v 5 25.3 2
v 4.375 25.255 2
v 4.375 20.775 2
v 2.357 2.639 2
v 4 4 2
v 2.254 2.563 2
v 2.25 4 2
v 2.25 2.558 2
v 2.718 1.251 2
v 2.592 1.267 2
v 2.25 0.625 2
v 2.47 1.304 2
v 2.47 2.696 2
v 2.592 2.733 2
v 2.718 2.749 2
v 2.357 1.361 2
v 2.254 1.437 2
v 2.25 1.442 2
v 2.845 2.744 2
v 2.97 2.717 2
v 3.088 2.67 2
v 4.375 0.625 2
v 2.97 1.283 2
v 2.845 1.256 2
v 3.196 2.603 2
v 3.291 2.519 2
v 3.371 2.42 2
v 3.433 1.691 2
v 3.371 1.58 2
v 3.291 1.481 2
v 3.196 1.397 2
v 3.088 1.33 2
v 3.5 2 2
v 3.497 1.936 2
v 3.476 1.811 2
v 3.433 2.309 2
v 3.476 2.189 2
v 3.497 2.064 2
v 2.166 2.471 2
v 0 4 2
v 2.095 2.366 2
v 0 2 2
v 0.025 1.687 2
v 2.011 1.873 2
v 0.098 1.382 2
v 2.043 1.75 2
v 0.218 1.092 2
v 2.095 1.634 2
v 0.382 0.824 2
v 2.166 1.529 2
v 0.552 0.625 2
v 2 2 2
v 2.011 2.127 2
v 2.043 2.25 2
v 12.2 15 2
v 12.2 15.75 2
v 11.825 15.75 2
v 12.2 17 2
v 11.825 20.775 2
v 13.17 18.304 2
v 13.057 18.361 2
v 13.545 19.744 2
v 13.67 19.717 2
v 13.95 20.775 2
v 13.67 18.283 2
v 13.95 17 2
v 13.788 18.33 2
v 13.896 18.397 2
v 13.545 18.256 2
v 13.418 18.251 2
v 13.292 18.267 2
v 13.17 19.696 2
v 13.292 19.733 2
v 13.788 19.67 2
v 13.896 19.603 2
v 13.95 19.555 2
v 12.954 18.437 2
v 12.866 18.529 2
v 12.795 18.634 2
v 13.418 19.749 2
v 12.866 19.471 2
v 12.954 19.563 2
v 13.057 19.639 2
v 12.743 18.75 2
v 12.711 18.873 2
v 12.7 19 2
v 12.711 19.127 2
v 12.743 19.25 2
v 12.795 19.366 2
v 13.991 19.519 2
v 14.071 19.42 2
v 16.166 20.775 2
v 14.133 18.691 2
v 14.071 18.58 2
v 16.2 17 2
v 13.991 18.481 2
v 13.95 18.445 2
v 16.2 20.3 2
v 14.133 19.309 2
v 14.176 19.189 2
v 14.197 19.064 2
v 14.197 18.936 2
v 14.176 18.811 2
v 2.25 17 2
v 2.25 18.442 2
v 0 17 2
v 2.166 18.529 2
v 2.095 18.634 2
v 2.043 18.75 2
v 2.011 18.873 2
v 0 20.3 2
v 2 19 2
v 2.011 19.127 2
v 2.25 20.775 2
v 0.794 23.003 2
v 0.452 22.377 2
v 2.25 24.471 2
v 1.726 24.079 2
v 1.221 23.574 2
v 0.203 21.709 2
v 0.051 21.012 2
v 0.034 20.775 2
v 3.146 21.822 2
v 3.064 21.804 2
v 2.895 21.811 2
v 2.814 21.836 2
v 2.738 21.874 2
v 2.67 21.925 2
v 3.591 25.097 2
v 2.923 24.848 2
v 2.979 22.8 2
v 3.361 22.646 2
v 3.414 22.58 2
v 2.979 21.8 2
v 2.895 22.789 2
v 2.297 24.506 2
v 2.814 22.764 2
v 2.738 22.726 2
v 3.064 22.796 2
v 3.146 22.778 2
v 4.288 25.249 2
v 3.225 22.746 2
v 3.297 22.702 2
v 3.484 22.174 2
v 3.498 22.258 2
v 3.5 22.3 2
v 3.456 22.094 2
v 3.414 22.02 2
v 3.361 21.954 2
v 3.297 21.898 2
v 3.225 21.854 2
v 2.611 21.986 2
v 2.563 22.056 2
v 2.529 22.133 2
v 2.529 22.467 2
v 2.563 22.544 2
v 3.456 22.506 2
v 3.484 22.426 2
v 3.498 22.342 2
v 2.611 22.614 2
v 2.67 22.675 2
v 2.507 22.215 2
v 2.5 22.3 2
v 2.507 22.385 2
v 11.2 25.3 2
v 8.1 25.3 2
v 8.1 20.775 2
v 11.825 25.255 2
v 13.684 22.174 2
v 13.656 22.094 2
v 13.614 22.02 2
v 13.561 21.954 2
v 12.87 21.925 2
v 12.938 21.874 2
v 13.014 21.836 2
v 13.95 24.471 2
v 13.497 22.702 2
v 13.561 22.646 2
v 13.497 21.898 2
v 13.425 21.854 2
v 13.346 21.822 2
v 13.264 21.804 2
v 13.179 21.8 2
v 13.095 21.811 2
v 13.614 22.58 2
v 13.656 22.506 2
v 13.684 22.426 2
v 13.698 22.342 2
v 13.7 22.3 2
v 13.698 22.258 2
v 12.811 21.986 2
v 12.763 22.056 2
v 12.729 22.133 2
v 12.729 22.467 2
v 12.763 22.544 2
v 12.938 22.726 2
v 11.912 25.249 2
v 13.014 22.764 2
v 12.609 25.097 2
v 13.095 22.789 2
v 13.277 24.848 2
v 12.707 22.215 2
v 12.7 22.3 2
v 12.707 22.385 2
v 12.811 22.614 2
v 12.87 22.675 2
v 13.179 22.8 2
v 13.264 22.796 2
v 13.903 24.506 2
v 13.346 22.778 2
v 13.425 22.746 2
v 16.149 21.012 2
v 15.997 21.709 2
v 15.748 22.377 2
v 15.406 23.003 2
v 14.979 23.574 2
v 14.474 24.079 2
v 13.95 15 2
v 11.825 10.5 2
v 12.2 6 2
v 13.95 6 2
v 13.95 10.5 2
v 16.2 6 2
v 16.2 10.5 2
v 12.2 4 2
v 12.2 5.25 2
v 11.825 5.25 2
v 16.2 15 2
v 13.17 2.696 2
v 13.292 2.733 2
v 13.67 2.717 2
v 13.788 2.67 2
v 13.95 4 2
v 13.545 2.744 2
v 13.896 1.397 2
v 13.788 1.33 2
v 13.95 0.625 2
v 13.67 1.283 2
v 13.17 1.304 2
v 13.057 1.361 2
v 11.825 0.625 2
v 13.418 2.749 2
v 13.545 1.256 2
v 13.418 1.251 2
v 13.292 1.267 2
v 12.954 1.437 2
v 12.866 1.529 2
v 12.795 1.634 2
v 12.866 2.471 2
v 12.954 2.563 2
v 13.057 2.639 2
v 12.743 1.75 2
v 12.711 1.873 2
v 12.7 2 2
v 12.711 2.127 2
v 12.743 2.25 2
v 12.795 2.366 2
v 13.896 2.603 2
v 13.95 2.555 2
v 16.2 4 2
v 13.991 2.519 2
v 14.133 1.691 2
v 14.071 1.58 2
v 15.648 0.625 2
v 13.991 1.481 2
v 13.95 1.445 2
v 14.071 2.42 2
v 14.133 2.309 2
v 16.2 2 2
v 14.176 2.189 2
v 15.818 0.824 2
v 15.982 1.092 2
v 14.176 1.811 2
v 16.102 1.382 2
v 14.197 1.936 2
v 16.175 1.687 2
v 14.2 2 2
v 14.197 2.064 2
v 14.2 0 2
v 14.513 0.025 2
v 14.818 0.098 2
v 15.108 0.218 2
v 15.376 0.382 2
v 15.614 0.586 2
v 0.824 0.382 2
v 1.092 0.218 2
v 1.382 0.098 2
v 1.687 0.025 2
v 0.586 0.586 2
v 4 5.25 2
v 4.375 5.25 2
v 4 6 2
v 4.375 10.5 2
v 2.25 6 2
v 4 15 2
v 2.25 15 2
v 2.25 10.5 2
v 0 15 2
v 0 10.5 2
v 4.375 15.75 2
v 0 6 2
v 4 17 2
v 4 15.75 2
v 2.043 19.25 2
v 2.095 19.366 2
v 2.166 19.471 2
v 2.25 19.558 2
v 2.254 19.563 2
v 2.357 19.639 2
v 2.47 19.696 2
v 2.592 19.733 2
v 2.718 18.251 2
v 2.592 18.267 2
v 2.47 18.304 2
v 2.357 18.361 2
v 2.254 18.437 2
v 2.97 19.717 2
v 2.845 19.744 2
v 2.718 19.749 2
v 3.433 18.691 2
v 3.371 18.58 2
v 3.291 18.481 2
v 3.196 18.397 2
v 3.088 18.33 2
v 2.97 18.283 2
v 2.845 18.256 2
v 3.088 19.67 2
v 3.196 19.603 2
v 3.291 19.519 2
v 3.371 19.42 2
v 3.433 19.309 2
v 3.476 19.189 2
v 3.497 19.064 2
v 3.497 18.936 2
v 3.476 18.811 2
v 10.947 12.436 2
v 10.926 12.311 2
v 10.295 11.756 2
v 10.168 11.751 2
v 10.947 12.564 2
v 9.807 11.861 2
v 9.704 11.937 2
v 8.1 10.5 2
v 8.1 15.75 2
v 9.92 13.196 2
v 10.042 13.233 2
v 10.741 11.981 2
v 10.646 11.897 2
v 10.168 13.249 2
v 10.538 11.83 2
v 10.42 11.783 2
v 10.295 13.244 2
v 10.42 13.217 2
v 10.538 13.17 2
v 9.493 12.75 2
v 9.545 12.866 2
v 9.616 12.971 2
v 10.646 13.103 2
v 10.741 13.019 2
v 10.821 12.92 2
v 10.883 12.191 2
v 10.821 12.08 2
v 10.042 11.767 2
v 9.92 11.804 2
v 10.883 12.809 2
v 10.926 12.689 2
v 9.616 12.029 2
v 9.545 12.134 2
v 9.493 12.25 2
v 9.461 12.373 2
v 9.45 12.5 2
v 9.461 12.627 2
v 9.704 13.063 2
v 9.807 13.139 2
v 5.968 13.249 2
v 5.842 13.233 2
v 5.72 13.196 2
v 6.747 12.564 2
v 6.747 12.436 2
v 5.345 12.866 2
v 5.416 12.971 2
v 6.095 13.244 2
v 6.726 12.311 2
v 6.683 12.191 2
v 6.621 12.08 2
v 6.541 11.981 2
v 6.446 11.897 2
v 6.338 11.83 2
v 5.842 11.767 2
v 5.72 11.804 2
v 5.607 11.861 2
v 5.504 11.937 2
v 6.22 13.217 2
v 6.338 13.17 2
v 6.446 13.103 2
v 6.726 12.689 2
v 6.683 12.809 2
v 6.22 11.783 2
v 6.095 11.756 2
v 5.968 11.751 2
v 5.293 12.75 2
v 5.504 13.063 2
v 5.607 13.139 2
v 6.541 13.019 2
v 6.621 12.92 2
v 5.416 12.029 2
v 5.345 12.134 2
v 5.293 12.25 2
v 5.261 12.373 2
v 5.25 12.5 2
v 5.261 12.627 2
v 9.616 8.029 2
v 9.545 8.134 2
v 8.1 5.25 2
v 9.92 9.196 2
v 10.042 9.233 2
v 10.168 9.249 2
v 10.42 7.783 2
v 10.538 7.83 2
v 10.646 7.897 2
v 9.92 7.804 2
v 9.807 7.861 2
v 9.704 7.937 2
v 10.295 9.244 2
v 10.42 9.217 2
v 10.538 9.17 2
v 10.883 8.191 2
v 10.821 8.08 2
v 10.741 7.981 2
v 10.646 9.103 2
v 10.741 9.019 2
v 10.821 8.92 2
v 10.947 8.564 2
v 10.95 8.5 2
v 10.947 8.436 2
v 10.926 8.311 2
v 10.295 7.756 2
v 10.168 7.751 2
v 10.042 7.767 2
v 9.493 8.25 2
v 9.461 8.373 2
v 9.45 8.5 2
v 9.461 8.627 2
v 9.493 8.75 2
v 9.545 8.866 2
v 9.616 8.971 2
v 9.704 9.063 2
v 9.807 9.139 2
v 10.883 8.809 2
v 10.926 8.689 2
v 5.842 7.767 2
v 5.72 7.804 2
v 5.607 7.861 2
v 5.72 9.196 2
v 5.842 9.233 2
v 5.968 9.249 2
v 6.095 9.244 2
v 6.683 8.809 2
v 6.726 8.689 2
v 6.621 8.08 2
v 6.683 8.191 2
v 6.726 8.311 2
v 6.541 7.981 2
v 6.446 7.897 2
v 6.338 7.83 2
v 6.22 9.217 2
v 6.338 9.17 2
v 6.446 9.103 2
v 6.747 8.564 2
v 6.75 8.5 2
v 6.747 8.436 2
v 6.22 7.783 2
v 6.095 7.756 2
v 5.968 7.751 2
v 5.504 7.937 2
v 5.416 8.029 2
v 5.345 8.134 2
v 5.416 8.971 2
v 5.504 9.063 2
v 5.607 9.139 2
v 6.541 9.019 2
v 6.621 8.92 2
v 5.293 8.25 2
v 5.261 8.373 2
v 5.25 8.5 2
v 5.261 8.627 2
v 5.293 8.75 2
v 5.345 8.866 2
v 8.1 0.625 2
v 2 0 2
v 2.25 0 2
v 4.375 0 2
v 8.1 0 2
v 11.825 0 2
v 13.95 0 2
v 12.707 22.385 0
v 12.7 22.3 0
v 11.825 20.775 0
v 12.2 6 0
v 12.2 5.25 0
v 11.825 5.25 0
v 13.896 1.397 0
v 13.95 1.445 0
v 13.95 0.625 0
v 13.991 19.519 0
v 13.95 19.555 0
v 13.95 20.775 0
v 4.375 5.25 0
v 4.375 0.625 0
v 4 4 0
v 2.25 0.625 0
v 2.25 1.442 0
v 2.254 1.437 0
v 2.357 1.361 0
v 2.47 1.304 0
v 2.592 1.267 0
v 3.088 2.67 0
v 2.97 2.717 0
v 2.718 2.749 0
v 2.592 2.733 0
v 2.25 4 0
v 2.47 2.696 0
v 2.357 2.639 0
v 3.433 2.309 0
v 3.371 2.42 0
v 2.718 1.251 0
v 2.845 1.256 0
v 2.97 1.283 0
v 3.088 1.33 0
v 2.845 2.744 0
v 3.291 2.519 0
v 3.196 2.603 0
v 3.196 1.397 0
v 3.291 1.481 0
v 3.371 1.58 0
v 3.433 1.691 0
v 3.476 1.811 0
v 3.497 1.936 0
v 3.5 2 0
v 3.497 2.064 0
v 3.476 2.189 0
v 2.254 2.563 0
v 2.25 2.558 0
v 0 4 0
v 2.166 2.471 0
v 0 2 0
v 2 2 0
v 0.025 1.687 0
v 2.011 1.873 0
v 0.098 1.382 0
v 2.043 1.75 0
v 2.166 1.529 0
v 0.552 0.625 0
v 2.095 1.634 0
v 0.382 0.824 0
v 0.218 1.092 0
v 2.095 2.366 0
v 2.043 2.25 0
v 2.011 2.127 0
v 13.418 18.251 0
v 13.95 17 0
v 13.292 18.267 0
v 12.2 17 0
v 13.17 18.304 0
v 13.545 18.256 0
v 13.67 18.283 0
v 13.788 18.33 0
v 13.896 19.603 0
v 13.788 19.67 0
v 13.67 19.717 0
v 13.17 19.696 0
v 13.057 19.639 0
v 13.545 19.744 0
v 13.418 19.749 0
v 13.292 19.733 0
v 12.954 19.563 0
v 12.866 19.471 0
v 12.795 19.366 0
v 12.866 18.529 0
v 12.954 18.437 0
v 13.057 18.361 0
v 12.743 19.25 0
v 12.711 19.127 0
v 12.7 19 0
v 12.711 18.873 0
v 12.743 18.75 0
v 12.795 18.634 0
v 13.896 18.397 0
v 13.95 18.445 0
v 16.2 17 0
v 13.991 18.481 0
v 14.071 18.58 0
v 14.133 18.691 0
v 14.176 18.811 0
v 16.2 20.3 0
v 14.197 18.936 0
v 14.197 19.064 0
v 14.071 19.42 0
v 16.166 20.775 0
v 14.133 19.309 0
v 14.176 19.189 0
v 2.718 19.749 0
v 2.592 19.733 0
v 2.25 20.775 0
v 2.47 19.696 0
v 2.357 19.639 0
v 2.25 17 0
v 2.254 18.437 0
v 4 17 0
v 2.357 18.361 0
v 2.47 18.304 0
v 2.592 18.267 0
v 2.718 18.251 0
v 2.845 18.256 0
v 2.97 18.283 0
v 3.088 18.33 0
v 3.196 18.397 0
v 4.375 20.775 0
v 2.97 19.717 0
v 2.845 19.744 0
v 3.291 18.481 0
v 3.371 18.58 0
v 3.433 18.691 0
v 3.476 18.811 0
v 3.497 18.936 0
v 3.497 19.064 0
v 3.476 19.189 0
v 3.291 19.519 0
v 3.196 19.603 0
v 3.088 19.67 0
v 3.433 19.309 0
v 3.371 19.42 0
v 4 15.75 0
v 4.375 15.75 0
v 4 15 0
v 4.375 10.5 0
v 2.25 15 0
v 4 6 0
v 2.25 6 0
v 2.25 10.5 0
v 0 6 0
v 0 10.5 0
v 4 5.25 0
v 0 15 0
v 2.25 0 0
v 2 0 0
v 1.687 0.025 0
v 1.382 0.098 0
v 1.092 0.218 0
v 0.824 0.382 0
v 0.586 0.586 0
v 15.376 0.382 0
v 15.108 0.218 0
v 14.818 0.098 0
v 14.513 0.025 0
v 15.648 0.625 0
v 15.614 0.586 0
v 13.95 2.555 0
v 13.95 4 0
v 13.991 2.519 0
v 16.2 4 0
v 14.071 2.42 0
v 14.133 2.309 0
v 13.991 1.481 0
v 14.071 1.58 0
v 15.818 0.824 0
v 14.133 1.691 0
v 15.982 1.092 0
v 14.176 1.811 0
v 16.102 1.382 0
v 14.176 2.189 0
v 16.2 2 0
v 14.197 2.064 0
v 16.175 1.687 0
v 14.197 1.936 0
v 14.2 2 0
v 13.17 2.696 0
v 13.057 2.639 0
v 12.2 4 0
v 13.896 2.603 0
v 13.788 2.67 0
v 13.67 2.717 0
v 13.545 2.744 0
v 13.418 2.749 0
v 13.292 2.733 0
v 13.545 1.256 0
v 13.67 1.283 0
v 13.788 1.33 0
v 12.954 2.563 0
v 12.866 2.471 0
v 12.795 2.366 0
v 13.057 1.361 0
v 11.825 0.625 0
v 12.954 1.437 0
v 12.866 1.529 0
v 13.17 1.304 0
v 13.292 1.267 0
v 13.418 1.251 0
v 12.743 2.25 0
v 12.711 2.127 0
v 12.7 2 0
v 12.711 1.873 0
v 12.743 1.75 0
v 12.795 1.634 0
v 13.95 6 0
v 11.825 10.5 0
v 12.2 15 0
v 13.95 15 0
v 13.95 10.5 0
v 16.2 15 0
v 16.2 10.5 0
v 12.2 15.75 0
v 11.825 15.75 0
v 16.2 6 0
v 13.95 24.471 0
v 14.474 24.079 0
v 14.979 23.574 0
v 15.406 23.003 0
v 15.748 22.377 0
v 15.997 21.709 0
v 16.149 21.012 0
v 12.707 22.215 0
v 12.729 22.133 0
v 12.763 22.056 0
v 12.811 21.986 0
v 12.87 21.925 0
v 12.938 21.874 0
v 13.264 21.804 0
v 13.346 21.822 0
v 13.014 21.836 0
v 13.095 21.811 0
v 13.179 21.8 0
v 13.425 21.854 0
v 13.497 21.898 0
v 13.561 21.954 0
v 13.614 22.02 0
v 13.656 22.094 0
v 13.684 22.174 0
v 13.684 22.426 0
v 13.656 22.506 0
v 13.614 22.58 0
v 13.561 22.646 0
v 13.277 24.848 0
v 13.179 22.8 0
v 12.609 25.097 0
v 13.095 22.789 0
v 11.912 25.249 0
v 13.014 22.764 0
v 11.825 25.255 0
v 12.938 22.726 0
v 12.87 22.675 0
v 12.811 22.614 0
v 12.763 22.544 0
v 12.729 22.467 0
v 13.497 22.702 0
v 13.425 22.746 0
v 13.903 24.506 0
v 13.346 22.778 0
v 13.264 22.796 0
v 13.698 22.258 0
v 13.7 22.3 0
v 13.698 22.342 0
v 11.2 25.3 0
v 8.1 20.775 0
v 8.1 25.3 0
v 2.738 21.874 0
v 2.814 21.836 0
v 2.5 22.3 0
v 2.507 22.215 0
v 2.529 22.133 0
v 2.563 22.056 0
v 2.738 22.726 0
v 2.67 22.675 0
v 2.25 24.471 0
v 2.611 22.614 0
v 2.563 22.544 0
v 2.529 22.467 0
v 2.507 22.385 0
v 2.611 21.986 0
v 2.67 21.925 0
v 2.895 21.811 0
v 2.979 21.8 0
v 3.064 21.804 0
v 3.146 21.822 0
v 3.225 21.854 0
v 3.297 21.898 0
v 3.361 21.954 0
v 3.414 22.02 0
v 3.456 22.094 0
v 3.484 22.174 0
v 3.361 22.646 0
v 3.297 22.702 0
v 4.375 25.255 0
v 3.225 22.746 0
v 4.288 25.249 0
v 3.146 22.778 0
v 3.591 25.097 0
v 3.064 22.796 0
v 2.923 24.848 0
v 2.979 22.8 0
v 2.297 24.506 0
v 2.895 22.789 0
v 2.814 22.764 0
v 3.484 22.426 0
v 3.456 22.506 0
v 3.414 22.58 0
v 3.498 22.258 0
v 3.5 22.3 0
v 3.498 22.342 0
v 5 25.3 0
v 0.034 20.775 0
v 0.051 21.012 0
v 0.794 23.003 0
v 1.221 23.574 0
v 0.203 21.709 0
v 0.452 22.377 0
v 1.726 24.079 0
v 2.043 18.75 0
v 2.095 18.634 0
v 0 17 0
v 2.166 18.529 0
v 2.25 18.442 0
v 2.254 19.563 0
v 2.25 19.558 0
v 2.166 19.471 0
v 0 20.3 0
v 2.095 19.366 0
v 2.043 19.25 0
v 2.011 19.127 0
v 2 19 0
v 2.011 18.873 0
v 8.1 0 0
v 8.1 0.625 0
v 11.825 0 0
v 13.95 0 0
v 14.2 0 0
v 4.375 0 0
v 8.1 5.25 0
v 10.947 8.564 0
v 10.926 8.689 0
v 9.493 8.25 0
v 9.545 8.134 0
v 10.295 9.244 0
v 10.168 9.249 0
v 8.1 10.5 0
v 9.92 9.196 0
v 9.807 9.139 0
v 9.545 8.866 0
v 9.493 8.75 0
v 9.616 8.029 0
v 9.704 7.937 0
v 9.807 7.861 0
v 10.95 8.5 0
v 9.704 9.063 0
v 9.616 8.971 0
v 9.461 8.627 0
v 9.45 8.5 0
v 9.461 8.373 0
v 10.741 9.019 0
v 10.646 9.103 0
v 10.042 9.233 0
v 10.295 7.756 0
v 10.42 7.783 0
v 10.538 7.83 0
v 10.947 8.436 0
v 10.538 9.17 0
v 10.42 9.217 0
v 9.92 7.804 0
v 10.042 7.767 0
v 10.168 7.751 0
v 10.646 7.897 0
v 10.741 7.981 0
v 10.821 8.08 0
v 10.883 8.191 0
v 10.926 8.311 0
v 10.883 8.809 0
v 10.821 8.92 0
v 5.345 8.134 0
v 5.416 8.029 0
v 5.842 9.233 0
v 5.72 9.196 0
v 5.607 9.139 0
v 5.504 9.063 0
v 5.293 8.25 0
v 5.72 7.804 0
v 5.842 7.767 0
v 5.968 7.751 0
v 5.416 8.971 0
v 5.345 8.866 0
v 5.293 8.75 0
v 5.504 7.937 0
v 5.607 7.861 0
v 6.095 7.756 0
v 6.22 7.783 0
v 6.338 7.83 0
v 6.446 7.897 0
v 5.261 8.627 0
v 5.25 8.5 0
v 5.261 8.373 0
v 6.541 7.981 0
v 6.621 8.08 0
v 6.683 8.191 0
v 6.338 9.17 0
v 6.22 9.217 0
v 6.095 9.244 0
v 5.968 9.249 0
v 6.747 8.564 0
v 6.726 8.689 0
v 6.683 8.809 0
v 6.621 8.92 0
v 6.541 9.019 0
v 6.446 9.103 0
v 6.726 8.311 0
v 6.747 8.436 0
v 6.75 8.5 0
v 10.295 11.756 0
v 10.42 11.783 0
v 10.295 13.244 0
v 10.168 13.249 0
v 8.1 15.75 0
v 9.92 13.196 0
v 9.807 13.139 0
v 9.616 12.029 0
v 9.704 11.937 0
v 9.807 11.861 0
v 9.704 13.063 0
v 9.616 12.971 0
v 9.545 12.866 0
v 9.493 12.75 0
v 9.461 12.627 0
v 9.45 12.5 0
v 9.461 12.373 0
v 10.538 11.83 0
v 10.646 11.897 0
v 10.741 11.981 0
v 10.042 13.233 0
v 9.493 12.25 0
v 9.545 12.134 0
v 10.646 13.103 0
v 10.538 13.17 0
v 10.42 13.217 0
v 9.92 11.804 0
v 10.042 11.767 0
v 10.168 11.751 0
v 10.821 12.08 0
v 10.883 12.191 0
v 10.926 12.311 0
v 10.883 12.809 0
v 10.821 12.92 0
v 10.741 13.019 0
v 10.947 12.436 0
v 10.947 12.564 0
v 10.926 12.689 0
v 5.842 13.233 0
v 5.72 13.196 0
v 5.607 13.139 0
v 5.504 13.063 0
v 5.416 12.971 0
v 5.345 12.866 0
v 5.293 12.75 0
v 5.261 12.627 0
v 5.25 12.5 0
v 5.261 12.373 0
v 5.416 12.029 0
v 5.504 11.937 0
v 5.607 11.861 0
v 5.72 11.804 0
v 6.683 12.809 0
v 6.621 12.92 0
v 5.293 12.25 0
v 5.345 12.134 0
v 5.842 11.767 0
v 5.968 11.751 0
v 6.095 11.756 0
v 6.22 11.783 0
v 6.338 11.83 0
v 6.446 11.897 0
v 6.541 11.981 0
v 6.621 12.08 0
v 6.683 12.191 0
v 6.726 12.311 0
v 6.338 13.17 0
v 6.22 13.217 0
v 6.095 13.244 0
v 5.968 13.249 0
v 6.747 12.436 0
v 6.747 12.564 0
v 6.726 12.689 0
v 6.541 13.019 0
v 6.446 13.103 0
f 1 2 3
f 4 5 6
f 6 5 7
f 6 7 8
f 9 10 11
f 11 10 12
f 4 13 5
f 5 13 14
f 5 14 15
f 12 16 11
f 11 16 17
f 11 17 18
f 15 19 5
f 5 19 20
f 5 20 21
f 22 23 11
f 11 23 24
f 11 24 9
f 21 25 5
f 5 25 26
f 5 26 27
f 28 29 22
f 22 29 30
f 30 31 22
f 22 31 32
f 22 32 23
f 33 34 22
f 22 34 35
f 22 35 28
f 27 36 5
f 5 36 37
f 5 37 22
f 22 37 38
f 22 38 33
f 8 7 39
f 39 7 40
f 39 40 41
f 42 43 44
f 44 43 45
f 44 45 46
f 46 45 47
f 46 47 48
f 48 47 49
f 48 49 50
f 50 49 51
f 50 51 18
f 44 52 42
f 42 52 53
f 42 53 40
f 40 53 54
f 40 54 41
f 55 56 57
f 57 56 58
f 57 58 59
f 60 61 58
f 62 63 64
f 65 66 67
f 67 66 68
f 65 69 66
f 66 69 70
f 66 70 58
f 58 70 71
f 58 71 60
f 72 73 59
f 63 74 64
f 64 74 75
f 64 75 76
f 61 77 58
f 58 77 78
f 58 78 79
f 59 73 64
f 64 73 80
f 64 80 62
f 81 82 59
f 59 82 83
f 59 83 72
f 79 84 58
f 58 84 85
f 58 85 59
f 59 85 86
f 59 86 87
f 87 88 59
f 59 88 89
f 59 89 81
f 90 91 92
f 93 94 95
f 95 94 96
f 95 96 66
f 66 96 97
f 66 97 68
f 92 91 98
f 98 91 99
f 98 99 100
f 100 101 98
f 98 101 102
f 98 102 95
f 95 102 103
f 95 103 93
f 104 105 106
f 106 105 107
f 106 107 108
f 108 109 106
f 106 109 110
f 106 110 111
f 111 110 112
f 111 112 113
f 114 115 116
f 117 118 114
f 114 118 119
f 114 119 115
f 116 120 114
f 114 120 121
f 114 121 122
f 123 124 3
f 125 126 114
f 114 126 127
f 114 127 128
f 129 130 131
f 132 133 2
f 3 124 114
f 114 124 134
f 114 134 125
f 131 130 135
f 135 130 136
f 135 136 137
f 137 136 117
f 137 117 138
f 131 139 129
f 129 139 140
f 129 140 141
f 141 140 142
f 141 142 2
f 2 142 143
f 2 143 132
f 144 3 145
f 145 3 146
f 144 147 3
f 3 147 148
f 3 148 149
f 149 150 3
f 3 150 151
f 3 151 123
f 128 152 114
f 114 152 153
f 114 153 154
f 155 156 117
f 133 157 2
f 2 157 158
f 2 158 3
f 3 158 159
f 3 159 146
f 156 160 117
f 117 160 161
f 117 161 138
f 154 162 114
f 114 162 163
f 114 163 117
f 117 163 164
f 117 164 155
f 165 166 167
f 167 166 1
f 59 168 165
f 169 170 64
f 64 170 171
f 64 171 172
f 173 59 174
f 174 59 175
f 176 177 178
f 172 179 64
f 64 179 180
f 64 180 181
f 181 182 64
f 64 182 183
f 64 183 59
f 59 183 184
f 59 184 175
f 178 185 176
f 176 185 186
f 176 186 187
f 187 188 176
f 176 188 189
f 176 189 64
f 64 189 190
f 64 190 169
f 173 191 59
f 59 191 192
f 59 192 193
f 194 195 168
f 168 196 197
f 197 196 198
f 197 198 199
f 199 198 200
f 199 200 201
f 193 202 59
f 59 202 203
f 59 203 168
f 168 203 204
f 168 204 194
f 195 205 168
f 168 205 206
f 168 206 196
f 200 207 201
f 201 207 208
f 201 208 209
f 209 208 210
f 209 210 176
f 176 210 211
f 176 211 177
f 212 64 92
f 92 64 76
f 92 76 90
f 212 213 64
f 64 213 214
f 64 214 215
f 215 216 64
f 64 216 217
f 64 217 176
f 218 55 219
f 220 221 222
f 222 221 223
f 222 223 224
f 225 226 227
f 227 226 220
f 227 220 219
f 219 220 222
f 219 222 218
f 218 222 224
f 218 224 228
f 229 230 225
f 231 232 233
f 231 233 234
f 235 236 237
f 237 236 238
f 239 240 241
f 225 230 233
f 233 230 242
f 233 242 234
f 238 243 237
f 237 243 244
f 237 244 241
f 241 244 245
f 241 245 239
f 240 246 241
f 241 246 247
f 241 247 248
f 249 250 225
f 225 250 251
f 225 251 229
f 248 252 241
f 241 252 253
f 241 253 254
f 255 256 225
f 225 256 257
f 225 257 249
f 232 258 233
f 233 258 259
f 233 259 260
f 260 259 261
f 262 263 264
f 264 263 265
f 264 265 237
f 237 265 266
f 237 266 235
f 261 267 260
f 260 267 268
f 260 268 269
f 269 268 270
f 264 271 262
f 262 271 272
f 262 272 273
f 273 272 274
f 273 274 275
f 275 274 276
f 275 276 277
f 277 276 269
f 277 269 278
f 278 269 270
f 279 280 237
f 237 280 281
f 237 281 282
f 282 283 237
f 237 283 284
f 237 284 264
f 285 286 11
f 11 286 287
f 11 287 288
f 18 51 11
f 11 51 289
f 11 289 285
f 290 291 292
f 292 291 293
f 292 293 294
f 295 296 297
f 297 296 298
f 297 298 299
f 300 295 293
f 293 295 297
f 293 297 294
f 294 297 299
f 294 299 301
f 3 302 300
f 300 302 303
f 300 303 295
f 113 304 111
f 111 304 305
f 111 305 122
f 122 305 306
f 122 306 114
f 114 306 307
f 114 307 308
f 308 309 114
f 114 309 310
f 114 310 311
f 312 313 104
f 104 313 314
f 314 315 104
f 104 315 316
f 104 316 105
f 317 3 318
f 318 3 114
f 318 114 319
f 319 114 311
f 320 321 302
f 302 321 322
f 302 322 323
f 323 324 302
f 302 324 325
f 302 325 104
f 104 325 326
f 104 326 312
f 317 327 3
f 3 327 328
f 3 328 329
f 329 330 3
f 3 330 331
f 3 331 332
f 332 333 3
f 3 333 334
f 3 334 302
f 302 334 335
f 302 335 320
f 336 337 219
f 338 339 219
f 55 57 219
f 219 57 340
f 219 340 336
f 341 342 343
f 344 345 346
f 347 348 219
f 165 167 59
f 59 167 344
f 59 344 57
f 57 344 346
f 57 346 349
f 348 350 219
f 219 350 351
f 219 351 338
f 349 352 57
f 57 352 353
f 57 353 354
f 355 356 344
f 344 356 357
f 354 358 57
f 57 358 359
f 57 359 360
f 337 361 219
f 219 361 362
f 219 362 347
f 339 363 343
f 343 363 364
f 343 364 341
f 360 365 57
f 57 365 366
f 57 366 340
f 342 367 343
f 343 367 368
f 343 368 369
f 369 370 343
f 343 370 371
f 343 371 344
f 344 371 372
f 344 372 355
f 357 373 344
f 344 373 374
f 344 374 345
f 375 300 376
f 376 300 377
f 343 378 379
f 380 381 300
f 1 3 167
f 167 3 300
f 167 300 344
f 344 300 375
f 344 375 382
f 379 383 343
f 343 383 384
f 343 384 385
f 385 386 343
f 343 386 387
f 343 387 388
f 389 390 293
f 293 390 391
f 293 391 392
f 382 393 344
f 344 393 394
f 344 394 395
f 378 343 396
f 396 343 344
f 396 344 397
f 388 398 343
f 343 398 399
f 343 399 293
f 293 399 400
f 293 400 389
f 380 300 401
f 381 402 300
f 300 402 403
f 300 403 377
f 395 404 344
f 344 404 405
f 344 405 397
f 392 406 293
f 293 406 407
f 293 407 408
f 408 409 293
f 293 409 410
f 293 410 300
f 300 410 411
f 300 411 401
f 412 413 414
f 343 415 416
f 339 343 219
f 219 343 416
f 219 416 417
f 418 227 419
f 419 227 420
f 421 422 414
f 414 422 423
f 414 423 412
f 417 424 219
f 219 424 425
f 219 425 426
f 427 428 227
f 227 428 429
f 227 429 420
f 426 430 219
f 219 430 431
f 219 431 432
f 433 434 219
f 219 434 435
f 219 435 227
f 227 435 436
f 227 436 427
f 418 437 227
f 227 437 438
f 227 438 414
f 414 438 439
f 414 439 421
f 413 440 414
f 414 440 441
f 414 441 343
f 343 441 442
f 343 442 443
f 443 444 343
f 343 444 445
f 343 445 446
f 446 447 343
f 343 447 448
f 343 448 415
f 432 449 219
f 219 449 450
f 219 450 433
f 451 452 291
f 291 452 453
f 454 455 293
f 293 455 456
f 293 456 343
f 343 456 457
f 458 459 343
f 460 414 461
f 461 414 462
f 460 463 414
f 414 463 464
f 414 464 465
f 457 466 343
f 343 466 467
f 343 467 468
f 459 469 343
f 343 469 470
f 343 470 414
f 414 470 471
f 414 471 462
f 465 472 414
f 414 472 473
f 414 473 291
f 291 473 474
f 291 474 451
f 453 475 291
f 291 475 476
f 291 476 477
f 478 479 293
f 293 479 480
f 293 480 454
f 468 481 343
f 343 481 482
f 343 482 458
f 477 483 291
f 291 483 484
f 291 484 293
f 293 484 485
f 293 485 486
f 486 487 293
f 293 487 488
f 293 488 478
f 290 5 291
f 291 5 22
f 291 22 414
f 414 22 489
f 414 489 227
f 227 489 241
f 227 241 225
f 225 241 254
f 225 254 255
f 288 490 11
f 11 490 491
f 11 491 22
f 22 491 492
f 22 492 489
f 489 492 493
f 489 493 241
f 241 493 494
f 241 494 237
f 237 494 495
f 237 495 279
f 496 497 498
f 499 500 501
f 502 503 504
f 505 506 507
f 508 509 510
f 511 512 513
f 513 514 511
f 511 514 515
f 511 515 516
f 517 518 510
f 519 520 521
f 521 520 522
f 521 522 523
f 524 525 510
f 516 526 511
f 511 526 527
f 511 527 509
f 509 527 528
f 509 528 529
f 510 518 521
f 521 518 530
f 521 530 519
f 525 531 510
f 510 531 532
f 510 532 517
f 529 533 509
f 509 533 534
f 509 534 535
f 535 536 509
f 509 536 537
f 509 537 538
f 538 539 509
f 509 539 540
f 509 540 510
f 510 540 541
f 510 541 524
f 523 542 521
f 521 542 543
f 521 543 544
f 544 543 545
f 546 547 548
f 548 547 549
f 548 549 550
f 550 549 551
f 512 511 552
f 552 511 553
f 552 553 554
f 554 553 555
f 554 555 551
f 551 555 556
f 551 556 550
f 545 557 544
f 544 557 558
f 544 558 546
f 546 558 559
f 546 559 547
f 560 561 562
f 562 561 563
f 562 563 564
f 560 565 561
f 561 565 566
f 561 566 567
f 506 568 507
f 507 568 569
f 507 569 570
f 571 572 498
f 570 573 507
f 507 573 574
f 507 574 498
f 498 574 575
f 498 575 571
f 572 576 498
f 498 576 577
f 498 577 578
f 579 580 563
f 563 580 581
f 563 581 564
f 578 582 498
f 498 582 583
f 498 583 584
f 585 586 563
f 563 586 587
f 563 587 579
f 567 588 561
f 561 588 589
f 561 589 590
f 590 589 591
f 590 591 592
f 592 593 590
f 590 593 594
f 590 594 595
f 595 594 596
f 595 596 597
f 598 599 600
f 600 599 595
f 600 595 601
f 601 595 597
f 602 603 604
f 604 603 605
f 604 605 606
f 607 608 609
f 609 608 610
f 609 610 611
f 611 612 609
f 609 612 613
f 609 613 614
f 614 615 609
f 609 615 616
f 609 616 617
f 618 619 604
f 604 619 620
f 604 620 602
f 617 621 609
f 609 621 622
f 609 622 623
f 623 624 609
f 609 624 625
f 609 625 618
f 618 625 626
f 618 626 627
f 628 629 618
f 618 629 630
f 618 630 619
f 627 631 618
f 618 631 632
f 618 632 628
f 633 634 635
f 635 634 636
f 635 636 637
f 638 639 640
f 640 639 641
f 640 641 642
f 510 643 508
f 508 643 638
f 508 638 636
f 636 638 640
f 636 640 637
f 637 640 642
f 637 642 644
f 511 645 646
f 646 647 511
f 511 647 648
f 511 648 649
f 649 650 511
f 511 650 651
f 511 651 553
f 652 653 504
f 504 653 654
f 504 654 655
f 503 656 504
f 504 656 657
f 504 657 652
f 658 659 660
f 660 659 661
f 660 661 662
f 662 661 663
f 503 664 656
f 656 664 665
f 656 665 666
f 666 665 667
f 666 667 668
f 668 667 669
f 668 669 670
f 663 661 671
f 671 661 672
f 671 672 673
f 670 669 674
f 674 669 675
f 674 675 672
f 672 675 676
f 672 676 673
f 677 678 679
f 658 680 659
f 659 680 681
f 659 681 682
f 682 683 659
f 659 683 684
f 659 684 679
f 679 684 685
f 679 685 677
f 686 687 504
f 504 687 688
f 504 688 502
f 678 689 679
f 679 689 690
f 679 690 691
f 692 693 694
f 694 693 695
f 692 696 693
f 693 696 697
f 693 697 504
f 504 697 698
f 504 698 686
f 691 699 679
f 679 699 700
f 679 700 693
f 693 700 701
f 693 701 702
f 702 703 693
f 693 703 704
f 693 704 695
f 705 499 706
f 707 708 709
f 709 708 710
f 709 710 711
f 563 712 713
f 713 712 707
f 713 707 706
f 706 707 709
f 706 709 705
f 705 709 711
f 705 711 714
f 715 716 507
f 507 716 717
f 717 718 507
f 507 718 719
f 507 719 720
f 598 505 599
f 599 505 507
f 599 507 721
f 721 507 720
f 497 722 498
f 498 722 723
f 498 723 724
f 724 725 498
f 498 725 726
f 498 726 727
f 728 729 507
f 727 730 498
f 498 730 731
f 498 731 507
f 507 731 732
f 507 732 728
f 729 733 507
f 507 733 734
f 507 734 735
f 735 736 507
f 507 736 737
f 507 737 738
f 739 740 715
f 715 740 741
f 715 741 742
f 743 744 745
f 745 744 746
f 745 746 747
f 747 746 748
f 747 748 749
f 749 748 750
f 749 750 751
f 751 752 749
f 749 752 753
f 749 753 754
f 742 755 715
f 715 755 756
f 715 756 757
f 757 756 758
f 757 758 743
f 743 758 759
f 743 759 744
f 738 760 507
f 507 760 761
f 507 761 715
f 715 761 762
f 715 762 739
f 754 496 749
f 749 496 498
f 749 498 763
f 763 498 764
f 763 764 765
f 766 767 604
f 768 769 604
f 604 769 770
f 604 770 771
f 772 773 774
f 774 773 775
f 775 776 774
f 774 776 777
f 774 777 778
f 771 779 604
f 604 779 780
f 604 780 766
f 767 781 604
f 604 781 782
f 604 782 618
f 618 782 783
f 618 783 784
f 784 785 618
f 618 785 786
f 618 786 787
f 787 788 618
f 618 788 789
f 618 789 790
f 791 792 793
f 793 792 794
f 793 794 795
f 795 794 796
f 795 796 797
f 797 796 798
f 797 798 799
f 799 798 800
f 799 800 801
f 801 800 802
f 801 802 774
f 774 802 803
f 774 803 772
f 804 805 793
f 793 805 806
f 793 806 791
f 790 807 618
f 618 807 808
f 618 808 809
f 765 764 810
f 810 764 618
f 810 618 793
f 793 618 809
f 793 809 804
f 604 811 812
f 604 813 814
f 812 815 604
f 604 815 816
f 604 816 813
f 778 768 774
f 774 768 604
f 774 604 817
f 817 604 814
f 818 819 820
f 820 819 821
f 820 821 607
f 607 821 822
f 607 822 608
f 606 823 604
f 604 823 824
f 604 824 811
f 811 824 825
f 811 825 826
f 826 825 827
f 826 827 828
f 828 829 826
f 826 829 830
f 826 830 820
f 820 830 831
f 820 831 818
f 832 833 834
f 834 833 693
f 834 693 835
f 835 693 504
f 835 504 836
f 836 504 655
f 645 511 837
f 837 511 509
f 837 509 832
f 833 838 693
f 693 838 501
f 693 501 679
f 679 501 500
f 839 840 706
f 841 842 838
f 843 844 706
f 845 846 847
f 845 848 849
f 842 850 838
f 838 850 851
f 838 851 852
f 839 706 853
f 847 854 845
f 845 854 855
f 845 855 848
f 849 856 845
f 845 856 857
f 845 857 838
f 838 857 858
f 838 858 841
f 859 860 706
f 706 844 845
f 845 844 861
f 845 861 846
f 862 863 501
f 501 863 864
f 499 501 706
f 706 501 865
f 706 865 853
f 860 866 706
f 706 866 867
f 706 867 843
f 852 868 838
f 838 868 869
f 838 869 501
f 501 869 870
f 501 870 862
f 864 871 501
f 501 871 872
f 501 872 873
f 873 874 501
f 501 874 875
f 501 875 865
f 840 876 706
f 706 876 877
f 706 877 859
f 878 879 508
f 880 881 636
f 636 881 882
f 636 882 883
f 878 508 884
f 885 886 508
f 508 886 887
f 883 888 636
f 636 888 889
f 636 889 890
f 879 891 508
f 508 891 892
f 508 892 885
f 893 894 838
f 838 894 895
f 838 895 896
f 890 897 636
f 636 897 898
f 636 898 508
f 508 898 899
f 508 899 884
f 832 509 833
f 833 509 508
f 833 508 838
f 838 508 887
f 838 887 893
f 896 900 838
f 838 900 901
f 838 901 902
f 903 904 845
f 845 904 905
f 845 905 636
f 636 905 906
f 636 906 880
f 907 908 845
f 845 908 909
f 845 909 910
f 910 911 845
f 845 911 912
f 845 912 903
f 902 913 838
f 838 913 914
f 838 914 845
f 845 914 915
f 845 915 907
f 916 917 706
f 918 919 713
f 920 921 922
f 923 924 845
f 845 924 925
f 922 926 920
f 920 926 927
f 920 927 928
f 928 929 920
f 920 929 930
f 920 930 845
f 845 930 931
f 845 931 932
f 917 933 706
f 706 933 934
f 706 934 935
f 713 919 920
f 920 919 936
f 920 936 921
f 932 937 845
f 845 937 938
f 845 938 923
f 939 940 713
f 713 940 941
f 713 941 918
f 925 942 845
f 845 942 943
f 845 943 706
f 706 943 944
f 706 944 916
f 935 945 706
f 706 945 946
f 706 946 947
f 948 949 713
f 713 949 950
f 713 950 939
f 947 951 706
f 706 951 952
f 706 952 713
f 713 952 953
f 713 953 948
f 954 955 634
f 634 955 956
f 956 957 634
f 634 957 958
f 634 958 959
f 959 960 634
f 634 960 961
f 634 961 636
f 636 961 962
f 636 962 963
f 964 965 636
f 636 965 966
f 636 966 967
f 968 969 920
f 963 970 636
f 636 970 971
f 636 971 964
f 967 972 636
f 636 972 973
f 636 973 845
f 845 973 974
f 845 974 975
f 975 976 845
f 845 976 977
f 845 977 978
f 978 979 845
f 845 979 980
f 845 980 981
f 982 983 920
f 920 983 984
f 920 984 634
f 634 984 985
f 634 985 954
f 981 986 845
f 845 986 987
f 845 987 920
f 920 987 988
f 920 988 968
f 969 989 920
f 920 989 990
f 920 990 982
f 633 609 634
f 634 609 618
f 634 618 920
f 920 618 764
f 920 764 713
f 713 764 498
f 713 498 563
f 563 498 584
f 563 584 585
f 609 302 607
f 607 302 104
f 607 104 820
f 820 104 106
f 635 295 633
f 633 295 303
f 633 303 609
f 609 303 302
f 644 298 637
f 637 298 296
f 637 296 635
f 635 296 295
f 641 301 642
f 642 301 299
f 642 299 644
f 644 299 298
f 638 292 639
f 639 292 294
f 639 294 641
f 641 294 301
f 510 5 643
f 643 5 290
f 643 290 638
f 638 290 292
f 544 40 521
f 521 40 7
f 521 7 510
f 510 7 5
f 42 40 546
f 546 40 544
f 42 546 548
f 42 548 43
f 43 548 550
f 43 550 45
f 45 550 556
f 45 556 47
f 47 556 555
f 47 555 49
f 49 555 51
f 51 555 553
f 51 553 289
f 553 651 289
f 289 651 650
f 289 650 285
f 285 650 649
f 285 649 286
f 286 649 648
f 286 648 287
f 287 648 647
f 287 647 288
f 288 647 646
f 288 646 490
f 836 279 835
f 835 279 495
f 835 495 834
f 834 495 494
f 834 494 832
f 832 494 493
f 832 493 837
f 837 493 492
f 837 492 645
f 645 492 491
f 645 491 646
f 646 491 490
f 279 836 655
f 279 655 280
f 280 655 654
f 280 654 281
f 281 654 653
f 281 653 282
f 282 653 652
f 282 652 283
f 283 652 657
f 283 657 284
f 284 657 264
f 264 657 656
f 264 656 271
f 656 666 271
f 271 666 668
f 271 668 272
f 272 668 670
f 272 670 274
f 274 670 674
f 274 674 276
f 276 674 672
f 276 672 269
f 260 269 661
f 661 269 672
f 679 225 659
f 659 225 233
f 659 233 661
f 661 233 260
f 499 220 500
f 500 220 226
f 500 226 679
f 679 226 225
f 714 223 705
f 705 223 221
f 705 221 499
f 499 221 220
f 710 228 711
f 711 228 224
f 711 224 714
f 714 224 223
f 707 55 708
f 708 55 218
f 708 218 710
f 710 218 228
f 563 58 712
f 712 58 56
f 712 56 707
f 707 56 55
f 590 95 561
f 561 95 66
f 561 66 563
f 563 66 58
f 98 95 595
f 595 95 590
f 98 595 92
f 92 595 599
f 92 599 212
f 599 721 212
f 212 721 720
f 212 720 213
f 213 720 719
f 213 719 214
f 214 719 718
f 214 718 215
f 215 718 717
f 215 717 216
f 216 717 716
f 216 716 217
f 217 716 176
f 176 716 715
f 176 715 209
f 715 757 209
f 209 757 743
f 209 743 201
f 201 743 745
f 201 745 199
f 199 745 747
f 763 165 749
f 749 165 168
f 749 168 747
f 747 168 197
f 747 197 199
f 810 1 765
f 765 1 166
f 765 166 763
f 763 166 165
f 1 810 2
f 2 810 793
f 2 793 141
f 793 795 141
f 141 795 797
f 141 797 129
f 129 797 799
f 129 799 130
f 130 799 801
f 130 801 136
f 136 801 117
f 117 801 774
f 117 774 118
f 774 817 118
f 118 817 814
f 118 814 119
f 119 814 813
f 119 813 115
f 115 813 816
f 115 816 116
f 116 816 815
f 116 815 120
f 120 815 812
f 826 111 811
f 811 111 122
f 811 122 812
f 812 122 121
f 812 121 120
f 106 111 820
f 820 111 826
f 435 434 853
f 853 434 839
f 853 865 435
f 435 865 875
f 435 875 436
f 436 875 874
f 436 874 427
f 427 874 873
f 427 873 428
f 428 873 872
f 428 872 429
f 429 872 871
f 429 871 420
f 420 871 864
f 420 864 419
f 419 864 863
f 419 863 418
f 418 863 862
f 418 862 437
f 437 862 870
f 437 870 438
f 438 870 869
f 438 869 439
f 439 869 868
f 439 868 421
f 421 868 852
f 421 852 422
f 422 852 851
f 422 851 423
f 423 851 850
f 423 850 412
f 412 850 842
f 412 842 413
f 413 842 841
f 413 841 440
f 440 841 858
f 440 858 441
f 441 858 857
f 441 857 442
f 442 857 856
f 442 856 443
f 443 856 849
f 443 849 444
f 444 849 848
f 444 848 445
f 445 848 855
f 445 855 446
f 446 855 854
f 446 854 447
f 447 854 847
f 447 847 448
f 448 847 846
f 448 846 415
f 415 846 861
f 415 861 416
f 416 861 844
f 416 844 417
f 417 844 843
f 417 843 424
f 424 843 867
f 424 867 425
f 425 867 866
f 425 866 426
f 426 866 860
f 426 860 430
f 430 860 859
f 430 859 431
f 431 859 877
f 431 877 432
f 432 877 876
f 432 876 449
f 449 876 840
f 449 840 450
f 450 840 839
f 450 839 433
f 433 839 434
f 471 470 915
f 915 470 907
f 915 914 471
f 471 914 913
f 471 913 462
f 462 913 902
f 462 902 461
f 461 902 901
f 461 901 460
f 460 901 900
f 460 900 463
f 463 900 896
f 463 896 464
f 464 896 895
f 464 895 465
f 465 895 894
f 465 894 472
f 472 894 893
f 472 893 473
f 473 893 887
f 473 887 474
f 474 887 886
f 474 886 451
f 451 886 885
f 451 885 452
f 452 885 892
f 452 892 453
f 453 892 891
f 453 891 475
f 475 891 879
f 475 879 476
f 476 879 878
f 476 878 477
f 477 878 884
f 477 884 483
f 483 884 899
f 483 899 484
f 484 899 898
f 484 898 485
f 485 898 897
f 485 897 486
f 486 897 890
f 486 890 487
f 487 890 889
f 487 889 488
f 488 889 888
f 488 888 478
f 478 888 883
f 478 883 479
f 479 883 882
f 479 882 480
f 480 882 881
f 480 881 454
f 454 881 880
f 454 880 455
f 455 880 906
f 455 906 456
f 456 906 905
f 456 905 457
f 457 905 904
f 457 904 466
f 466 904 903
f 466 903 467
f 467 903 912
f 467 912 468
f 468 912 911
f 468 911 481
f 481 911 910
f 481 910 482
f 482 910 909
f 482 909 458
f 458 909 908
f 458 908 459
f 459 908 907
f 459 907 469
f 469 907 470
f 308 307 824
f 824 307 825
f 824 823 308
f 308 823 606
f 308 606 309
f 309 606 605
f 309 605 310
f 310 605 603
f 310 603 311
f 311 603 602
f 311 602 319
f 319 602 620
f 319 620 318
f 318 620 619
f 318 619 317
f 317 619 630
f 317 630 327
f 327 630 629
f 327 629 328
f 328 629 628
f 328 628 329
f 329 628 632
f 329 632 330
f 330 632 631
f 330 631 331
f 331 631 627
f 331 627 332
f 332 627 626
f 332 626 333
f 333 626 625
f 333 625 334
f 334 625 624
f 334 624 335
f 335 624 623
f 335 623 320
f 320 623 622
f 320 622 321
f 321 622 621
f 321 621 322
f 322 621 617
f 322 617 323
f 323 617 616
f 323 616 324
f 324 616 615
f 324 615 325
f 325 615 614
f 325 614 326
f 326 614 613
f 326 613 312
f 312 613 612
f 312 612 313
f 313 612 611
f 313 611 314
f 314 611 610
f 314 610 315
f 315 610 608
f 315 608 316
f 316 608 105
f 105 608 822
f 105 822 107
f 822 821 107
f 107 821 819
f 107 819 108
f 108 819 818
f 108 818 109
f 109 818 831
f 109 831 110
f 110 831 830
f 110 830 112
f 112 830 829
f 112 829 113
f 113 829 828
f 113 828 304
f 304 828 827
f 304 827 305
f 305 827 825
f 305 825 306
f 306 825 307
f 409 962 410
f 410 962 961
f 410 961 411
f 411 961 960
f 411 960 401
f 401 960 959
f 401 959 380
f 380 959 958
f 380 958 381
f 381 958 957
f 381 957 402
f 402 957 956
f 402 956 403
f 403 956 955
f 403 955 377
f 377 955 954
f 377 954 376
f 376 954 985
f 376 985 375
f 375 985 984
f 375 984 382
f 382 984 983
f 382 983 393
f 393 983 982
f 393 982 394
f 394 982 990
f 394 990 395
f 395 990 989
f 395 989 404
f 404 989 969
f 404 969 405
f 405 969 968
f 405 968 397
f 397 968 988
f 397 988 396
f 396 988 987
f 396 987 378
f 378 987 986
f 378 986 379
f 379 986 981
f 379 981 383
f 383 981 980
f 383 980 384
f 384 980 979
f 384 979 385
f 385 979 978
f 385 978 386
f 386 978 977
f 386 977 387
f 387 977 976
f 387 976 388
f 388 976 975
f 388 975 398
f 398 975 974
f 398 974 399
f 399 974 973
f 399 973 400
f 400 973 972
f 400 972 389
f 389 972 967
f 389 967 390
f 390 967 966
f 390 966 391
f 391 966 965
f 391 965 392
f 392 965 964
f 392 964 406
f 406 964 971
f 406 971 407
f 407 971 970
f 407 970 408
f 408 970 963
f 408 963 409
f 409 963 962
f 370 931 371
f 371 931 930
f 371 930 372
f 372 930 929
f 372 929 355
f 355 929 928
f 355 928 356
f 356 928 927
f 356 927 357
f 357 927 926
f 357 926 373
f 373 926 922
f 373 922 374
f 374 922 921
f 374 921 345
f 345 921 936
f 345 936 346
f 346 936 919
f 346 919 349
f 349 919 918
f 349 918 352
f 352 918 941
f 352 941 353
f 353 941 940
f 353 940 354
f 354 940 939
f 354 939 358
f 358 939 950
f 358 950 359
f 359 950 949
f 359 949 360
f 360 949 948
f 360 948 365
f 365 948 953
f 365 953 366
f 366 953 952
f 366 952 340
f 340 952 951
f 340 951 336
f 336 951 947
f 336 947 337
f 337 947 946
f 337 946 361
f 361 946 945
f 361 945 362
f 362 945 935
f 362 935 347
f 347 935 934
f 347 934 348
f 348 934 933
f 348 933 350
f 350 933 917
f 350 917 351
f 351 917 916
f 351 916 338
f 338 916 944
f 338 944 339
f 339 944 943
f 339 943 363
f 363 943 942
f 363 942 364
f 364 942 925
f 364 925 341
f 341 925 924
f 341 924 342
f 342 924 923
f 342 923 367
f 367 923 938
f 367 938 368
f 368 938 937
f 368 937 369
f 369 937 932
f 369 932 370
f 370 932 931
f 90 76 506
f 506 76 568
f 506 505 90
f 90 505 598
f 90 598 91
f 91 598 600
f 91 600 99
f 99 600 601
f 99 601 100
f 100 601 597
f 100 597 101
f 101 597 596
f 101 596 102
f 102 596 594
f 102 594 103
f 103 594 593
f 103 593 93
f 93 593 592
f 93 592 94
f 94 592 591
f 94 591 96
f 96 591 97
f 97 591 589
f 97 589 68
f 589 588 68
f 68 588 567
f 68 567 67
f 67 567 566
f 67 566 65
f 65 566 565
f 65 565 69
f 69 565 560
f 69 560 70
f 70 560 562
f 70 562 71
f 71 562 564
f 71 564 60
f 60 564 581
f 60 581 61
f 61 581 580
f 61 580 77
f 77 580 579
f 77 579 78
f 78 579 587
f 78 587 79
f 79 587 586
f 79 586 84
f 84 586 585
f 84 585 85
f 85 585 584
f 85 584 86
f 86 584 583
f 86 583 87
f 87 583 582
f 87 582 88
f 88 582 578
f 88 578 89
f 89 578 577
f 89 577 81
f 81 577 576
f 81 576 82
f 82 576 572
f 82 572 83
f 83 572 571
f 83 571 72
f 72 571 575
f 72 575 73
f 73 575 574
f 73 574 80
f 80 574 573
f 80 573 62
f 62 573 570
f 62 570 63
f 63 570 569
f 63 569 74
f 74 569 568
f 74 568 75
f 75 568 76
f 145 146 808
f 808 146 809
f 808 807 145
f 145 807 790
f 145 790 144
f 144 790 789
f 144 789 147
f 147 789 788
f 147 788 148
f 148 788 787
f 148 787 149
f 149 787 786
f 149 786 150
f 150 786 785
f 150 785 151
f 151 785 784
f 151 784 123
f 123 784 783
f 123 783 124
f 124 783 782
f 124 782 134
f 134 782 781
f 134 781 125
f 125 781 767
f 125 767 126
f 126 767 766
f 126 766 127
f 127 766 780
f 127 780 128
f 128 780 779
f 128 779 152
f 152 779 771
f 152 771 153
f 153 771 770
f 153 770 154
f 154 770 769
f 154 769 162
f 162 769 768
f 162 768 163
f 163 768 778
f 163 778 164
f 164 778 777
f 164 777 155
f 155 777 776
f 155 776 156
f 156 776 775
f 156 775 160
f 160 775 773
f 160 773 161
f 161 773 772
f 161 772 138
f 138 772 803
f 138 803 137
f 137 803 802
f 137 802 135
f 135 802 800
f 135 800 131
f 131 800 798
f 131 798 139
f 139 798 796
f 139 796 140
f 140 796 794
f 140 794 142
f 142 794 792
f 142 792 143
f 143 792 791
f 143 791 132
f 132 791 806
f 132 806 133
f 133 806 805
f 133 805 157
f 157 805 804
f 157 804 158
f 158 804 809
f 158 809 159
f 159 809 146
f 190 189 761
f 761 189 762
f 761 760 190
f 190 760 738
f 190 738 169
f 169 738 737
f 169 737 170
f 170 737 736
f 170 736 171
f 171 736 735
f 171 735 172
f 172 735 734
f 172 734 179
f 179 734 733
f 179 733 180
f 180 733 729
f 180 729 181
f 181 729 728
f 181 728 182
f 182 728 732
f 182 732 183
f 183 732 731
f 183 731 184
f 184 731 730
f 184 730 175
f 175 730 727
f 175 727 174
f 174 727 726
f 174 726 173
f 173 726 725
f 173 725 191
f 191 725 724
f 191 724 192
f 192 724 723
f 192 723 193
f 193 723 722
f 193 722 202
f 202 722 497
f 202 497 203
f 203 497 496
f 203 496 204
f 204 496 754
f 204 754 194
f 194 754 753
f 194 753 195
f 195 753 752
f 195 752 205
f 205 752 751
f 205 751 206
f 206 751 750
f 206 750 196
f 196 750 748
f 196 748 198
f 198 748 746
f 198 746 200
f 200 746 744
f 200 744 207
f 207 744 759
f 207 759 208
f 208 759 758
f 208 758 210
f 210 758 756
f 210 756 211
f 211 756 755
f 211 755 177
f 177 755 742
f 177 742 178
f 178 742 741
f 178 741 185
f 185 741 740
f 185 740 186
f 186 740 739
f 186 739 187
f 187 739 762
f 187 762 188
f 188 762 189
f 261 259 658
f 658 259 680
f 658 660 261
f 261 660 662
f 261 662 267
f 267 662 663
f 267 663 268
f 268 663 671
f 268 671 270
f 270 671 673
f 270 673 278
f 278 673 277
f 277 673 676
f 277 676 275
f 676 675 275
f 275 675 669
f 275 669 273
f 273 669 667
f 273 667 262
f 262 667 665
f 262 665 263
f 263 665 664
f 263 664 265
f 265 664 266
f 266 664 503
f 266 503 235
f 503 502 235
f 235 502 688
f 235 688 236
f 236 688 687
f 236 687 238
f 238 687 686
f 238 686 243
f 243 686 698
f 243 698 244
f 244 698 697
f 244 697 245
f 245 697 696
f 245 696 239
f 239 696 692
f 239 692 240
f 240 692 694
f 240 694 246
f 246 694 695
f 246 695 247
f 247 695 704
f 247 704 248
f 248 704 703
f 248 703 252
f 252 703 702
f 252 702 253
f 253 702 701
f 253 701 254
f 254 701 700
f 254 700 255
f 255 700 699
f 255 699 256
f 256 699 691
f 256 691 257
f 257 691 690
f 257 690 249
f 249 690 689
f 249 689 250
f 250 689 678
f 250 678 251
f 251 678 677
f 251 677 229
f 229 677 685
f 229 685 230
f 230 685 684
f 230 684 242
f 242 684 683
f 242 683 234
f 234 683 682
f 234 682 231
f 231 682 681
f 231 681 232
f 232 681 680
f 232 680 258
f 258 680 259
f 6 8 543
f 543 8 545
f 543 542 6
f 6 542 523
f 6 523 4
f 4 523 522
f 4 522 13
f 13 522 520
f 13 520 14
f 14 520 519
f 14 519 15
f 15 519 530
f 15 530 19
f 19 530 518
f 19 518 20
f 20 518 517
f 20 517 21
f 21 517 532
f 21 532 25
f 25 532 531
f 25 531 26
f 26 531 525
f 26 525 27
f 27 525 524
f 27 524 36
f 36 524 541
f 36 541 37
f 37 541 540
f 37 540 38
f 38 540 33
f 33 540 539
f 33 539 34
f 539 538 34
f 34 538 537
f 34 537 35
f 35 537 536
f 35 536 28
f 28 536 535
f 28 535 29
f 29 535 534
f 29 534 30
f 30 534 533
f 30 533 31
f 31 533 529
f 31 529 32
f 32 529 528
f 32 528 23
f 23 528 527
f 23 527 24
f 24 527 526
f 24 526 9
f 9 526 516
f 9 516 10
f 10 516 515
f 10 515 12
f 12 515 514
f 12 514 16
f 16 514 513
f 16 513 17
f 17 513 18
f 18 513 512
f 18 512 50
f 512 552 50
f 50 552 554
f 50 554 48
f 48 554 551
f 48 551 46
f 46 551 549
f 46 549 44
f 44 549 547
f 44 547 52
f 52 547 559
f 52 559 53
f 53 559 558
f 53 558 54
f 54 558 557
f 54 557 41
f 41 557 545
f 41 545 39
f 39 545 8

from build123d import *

# Parameters (mm, degrees)
SKETCH1_R           = 0.75
SKETCH1_R_2         = 0.5
BOSS_EXTRUDE1_DEPTH = 2


with BuildPart() as part:
    # Sketch1 → Boss-Extrude1 (new body)
    with BuildSketch(Plane.XY):
        with BuildLine():
            Line((0, 6), (0, 15))
            Line((0, 15), (4, 15))
            Line((4, 15), (4, 17))
            Line((4, 17), (0, 17))
            Line((0, 17), (0, 20.3))
            ThreePointArc((0, 20.3), (1.464466094, 23.835533906), (5, 25.3))
            Line((5, 25.3), (11.2, 25.3))
            ThreePointArc((11.2, 25.3), (14.735533906, 23.835533906), (16.2, 20.3))
            Line((16.2, 20.3), (16.2, 17))
            Line((16.2, 17), (12.2, 17))
            Line((12.2, 17), (12.2, 15))
            Line((12.2, 15), (16.2, 15))
            Line((16.2, 15), (16.2, 6))
            Line((16.2, 6), (12.2, 6))
            Line((12.2, 6), (12.2, 4))
            Line((12.2, 4), (16.2, 4))
            Line((16.2, 4), (16.2, 2))
            ThreePointArc((16.2, 2), (15.614213562, 0.585786438), (14.2, 0))
            Line((14.2, 0), (2, 0))
            ThreePointArc((2, 0), (0.585786438, 0.585786438), (0, 2))
            Line((0, 2), (0, 4))
            Line((0, 4), (4, 4))
            Line((4, 4), (4, 6))
            Line((4, 6), (0, 6))
        make_face()
        with Locations(Location((6, 12.5, 0), (0, 0, 180))):
            Circle(SKETCH1_R, mode=Mode.SUBTRACT)
        with Locations(Location((10.2, 12.5, 0), (0, 0, 180))):
            Circle(SKETCH1_R, mode=Mode.SUBTRACT)
        with Locations(Location((2.75, 19, 0), (0, 0, 180))):
            Circle(SKETCH1_R, mode=Mode.SUBTRACT)
        with Locations(Location((13.45, 19, 0), (0, 0, 180))):
            Circle(SKETCH1_R, mode=Mode.SUBTRACT)
        with Locations((10.2, 8.5)):
            Circle(SKETCH1_R, mode=Mode.SUBTRACT)
        with Locations((6, 8.5)):
            Circle(SKETCH1_R, mode=Mode.SUBTRACT)
        with Locations((3, 22.3)):
            Circle(SKETCH1_R_2, mode=Mode.SUBTRACT)
        with Locations((13.2, 22.3)):
            Circle(SKETCH1_R_2, mode=Mode.SUBTRACT)
        with Locations((13.45, 2)):
            Circle(SKETCH1_R, mode=Mode.SUBTRACT)
        with Locations((2.75, 2)):
            Circle(SKETCH1_R, mode=Mode.SUBTRACT)
    extrude(amount=BOSS_EXTRUDE1_DEPTH)


solid = part.part
